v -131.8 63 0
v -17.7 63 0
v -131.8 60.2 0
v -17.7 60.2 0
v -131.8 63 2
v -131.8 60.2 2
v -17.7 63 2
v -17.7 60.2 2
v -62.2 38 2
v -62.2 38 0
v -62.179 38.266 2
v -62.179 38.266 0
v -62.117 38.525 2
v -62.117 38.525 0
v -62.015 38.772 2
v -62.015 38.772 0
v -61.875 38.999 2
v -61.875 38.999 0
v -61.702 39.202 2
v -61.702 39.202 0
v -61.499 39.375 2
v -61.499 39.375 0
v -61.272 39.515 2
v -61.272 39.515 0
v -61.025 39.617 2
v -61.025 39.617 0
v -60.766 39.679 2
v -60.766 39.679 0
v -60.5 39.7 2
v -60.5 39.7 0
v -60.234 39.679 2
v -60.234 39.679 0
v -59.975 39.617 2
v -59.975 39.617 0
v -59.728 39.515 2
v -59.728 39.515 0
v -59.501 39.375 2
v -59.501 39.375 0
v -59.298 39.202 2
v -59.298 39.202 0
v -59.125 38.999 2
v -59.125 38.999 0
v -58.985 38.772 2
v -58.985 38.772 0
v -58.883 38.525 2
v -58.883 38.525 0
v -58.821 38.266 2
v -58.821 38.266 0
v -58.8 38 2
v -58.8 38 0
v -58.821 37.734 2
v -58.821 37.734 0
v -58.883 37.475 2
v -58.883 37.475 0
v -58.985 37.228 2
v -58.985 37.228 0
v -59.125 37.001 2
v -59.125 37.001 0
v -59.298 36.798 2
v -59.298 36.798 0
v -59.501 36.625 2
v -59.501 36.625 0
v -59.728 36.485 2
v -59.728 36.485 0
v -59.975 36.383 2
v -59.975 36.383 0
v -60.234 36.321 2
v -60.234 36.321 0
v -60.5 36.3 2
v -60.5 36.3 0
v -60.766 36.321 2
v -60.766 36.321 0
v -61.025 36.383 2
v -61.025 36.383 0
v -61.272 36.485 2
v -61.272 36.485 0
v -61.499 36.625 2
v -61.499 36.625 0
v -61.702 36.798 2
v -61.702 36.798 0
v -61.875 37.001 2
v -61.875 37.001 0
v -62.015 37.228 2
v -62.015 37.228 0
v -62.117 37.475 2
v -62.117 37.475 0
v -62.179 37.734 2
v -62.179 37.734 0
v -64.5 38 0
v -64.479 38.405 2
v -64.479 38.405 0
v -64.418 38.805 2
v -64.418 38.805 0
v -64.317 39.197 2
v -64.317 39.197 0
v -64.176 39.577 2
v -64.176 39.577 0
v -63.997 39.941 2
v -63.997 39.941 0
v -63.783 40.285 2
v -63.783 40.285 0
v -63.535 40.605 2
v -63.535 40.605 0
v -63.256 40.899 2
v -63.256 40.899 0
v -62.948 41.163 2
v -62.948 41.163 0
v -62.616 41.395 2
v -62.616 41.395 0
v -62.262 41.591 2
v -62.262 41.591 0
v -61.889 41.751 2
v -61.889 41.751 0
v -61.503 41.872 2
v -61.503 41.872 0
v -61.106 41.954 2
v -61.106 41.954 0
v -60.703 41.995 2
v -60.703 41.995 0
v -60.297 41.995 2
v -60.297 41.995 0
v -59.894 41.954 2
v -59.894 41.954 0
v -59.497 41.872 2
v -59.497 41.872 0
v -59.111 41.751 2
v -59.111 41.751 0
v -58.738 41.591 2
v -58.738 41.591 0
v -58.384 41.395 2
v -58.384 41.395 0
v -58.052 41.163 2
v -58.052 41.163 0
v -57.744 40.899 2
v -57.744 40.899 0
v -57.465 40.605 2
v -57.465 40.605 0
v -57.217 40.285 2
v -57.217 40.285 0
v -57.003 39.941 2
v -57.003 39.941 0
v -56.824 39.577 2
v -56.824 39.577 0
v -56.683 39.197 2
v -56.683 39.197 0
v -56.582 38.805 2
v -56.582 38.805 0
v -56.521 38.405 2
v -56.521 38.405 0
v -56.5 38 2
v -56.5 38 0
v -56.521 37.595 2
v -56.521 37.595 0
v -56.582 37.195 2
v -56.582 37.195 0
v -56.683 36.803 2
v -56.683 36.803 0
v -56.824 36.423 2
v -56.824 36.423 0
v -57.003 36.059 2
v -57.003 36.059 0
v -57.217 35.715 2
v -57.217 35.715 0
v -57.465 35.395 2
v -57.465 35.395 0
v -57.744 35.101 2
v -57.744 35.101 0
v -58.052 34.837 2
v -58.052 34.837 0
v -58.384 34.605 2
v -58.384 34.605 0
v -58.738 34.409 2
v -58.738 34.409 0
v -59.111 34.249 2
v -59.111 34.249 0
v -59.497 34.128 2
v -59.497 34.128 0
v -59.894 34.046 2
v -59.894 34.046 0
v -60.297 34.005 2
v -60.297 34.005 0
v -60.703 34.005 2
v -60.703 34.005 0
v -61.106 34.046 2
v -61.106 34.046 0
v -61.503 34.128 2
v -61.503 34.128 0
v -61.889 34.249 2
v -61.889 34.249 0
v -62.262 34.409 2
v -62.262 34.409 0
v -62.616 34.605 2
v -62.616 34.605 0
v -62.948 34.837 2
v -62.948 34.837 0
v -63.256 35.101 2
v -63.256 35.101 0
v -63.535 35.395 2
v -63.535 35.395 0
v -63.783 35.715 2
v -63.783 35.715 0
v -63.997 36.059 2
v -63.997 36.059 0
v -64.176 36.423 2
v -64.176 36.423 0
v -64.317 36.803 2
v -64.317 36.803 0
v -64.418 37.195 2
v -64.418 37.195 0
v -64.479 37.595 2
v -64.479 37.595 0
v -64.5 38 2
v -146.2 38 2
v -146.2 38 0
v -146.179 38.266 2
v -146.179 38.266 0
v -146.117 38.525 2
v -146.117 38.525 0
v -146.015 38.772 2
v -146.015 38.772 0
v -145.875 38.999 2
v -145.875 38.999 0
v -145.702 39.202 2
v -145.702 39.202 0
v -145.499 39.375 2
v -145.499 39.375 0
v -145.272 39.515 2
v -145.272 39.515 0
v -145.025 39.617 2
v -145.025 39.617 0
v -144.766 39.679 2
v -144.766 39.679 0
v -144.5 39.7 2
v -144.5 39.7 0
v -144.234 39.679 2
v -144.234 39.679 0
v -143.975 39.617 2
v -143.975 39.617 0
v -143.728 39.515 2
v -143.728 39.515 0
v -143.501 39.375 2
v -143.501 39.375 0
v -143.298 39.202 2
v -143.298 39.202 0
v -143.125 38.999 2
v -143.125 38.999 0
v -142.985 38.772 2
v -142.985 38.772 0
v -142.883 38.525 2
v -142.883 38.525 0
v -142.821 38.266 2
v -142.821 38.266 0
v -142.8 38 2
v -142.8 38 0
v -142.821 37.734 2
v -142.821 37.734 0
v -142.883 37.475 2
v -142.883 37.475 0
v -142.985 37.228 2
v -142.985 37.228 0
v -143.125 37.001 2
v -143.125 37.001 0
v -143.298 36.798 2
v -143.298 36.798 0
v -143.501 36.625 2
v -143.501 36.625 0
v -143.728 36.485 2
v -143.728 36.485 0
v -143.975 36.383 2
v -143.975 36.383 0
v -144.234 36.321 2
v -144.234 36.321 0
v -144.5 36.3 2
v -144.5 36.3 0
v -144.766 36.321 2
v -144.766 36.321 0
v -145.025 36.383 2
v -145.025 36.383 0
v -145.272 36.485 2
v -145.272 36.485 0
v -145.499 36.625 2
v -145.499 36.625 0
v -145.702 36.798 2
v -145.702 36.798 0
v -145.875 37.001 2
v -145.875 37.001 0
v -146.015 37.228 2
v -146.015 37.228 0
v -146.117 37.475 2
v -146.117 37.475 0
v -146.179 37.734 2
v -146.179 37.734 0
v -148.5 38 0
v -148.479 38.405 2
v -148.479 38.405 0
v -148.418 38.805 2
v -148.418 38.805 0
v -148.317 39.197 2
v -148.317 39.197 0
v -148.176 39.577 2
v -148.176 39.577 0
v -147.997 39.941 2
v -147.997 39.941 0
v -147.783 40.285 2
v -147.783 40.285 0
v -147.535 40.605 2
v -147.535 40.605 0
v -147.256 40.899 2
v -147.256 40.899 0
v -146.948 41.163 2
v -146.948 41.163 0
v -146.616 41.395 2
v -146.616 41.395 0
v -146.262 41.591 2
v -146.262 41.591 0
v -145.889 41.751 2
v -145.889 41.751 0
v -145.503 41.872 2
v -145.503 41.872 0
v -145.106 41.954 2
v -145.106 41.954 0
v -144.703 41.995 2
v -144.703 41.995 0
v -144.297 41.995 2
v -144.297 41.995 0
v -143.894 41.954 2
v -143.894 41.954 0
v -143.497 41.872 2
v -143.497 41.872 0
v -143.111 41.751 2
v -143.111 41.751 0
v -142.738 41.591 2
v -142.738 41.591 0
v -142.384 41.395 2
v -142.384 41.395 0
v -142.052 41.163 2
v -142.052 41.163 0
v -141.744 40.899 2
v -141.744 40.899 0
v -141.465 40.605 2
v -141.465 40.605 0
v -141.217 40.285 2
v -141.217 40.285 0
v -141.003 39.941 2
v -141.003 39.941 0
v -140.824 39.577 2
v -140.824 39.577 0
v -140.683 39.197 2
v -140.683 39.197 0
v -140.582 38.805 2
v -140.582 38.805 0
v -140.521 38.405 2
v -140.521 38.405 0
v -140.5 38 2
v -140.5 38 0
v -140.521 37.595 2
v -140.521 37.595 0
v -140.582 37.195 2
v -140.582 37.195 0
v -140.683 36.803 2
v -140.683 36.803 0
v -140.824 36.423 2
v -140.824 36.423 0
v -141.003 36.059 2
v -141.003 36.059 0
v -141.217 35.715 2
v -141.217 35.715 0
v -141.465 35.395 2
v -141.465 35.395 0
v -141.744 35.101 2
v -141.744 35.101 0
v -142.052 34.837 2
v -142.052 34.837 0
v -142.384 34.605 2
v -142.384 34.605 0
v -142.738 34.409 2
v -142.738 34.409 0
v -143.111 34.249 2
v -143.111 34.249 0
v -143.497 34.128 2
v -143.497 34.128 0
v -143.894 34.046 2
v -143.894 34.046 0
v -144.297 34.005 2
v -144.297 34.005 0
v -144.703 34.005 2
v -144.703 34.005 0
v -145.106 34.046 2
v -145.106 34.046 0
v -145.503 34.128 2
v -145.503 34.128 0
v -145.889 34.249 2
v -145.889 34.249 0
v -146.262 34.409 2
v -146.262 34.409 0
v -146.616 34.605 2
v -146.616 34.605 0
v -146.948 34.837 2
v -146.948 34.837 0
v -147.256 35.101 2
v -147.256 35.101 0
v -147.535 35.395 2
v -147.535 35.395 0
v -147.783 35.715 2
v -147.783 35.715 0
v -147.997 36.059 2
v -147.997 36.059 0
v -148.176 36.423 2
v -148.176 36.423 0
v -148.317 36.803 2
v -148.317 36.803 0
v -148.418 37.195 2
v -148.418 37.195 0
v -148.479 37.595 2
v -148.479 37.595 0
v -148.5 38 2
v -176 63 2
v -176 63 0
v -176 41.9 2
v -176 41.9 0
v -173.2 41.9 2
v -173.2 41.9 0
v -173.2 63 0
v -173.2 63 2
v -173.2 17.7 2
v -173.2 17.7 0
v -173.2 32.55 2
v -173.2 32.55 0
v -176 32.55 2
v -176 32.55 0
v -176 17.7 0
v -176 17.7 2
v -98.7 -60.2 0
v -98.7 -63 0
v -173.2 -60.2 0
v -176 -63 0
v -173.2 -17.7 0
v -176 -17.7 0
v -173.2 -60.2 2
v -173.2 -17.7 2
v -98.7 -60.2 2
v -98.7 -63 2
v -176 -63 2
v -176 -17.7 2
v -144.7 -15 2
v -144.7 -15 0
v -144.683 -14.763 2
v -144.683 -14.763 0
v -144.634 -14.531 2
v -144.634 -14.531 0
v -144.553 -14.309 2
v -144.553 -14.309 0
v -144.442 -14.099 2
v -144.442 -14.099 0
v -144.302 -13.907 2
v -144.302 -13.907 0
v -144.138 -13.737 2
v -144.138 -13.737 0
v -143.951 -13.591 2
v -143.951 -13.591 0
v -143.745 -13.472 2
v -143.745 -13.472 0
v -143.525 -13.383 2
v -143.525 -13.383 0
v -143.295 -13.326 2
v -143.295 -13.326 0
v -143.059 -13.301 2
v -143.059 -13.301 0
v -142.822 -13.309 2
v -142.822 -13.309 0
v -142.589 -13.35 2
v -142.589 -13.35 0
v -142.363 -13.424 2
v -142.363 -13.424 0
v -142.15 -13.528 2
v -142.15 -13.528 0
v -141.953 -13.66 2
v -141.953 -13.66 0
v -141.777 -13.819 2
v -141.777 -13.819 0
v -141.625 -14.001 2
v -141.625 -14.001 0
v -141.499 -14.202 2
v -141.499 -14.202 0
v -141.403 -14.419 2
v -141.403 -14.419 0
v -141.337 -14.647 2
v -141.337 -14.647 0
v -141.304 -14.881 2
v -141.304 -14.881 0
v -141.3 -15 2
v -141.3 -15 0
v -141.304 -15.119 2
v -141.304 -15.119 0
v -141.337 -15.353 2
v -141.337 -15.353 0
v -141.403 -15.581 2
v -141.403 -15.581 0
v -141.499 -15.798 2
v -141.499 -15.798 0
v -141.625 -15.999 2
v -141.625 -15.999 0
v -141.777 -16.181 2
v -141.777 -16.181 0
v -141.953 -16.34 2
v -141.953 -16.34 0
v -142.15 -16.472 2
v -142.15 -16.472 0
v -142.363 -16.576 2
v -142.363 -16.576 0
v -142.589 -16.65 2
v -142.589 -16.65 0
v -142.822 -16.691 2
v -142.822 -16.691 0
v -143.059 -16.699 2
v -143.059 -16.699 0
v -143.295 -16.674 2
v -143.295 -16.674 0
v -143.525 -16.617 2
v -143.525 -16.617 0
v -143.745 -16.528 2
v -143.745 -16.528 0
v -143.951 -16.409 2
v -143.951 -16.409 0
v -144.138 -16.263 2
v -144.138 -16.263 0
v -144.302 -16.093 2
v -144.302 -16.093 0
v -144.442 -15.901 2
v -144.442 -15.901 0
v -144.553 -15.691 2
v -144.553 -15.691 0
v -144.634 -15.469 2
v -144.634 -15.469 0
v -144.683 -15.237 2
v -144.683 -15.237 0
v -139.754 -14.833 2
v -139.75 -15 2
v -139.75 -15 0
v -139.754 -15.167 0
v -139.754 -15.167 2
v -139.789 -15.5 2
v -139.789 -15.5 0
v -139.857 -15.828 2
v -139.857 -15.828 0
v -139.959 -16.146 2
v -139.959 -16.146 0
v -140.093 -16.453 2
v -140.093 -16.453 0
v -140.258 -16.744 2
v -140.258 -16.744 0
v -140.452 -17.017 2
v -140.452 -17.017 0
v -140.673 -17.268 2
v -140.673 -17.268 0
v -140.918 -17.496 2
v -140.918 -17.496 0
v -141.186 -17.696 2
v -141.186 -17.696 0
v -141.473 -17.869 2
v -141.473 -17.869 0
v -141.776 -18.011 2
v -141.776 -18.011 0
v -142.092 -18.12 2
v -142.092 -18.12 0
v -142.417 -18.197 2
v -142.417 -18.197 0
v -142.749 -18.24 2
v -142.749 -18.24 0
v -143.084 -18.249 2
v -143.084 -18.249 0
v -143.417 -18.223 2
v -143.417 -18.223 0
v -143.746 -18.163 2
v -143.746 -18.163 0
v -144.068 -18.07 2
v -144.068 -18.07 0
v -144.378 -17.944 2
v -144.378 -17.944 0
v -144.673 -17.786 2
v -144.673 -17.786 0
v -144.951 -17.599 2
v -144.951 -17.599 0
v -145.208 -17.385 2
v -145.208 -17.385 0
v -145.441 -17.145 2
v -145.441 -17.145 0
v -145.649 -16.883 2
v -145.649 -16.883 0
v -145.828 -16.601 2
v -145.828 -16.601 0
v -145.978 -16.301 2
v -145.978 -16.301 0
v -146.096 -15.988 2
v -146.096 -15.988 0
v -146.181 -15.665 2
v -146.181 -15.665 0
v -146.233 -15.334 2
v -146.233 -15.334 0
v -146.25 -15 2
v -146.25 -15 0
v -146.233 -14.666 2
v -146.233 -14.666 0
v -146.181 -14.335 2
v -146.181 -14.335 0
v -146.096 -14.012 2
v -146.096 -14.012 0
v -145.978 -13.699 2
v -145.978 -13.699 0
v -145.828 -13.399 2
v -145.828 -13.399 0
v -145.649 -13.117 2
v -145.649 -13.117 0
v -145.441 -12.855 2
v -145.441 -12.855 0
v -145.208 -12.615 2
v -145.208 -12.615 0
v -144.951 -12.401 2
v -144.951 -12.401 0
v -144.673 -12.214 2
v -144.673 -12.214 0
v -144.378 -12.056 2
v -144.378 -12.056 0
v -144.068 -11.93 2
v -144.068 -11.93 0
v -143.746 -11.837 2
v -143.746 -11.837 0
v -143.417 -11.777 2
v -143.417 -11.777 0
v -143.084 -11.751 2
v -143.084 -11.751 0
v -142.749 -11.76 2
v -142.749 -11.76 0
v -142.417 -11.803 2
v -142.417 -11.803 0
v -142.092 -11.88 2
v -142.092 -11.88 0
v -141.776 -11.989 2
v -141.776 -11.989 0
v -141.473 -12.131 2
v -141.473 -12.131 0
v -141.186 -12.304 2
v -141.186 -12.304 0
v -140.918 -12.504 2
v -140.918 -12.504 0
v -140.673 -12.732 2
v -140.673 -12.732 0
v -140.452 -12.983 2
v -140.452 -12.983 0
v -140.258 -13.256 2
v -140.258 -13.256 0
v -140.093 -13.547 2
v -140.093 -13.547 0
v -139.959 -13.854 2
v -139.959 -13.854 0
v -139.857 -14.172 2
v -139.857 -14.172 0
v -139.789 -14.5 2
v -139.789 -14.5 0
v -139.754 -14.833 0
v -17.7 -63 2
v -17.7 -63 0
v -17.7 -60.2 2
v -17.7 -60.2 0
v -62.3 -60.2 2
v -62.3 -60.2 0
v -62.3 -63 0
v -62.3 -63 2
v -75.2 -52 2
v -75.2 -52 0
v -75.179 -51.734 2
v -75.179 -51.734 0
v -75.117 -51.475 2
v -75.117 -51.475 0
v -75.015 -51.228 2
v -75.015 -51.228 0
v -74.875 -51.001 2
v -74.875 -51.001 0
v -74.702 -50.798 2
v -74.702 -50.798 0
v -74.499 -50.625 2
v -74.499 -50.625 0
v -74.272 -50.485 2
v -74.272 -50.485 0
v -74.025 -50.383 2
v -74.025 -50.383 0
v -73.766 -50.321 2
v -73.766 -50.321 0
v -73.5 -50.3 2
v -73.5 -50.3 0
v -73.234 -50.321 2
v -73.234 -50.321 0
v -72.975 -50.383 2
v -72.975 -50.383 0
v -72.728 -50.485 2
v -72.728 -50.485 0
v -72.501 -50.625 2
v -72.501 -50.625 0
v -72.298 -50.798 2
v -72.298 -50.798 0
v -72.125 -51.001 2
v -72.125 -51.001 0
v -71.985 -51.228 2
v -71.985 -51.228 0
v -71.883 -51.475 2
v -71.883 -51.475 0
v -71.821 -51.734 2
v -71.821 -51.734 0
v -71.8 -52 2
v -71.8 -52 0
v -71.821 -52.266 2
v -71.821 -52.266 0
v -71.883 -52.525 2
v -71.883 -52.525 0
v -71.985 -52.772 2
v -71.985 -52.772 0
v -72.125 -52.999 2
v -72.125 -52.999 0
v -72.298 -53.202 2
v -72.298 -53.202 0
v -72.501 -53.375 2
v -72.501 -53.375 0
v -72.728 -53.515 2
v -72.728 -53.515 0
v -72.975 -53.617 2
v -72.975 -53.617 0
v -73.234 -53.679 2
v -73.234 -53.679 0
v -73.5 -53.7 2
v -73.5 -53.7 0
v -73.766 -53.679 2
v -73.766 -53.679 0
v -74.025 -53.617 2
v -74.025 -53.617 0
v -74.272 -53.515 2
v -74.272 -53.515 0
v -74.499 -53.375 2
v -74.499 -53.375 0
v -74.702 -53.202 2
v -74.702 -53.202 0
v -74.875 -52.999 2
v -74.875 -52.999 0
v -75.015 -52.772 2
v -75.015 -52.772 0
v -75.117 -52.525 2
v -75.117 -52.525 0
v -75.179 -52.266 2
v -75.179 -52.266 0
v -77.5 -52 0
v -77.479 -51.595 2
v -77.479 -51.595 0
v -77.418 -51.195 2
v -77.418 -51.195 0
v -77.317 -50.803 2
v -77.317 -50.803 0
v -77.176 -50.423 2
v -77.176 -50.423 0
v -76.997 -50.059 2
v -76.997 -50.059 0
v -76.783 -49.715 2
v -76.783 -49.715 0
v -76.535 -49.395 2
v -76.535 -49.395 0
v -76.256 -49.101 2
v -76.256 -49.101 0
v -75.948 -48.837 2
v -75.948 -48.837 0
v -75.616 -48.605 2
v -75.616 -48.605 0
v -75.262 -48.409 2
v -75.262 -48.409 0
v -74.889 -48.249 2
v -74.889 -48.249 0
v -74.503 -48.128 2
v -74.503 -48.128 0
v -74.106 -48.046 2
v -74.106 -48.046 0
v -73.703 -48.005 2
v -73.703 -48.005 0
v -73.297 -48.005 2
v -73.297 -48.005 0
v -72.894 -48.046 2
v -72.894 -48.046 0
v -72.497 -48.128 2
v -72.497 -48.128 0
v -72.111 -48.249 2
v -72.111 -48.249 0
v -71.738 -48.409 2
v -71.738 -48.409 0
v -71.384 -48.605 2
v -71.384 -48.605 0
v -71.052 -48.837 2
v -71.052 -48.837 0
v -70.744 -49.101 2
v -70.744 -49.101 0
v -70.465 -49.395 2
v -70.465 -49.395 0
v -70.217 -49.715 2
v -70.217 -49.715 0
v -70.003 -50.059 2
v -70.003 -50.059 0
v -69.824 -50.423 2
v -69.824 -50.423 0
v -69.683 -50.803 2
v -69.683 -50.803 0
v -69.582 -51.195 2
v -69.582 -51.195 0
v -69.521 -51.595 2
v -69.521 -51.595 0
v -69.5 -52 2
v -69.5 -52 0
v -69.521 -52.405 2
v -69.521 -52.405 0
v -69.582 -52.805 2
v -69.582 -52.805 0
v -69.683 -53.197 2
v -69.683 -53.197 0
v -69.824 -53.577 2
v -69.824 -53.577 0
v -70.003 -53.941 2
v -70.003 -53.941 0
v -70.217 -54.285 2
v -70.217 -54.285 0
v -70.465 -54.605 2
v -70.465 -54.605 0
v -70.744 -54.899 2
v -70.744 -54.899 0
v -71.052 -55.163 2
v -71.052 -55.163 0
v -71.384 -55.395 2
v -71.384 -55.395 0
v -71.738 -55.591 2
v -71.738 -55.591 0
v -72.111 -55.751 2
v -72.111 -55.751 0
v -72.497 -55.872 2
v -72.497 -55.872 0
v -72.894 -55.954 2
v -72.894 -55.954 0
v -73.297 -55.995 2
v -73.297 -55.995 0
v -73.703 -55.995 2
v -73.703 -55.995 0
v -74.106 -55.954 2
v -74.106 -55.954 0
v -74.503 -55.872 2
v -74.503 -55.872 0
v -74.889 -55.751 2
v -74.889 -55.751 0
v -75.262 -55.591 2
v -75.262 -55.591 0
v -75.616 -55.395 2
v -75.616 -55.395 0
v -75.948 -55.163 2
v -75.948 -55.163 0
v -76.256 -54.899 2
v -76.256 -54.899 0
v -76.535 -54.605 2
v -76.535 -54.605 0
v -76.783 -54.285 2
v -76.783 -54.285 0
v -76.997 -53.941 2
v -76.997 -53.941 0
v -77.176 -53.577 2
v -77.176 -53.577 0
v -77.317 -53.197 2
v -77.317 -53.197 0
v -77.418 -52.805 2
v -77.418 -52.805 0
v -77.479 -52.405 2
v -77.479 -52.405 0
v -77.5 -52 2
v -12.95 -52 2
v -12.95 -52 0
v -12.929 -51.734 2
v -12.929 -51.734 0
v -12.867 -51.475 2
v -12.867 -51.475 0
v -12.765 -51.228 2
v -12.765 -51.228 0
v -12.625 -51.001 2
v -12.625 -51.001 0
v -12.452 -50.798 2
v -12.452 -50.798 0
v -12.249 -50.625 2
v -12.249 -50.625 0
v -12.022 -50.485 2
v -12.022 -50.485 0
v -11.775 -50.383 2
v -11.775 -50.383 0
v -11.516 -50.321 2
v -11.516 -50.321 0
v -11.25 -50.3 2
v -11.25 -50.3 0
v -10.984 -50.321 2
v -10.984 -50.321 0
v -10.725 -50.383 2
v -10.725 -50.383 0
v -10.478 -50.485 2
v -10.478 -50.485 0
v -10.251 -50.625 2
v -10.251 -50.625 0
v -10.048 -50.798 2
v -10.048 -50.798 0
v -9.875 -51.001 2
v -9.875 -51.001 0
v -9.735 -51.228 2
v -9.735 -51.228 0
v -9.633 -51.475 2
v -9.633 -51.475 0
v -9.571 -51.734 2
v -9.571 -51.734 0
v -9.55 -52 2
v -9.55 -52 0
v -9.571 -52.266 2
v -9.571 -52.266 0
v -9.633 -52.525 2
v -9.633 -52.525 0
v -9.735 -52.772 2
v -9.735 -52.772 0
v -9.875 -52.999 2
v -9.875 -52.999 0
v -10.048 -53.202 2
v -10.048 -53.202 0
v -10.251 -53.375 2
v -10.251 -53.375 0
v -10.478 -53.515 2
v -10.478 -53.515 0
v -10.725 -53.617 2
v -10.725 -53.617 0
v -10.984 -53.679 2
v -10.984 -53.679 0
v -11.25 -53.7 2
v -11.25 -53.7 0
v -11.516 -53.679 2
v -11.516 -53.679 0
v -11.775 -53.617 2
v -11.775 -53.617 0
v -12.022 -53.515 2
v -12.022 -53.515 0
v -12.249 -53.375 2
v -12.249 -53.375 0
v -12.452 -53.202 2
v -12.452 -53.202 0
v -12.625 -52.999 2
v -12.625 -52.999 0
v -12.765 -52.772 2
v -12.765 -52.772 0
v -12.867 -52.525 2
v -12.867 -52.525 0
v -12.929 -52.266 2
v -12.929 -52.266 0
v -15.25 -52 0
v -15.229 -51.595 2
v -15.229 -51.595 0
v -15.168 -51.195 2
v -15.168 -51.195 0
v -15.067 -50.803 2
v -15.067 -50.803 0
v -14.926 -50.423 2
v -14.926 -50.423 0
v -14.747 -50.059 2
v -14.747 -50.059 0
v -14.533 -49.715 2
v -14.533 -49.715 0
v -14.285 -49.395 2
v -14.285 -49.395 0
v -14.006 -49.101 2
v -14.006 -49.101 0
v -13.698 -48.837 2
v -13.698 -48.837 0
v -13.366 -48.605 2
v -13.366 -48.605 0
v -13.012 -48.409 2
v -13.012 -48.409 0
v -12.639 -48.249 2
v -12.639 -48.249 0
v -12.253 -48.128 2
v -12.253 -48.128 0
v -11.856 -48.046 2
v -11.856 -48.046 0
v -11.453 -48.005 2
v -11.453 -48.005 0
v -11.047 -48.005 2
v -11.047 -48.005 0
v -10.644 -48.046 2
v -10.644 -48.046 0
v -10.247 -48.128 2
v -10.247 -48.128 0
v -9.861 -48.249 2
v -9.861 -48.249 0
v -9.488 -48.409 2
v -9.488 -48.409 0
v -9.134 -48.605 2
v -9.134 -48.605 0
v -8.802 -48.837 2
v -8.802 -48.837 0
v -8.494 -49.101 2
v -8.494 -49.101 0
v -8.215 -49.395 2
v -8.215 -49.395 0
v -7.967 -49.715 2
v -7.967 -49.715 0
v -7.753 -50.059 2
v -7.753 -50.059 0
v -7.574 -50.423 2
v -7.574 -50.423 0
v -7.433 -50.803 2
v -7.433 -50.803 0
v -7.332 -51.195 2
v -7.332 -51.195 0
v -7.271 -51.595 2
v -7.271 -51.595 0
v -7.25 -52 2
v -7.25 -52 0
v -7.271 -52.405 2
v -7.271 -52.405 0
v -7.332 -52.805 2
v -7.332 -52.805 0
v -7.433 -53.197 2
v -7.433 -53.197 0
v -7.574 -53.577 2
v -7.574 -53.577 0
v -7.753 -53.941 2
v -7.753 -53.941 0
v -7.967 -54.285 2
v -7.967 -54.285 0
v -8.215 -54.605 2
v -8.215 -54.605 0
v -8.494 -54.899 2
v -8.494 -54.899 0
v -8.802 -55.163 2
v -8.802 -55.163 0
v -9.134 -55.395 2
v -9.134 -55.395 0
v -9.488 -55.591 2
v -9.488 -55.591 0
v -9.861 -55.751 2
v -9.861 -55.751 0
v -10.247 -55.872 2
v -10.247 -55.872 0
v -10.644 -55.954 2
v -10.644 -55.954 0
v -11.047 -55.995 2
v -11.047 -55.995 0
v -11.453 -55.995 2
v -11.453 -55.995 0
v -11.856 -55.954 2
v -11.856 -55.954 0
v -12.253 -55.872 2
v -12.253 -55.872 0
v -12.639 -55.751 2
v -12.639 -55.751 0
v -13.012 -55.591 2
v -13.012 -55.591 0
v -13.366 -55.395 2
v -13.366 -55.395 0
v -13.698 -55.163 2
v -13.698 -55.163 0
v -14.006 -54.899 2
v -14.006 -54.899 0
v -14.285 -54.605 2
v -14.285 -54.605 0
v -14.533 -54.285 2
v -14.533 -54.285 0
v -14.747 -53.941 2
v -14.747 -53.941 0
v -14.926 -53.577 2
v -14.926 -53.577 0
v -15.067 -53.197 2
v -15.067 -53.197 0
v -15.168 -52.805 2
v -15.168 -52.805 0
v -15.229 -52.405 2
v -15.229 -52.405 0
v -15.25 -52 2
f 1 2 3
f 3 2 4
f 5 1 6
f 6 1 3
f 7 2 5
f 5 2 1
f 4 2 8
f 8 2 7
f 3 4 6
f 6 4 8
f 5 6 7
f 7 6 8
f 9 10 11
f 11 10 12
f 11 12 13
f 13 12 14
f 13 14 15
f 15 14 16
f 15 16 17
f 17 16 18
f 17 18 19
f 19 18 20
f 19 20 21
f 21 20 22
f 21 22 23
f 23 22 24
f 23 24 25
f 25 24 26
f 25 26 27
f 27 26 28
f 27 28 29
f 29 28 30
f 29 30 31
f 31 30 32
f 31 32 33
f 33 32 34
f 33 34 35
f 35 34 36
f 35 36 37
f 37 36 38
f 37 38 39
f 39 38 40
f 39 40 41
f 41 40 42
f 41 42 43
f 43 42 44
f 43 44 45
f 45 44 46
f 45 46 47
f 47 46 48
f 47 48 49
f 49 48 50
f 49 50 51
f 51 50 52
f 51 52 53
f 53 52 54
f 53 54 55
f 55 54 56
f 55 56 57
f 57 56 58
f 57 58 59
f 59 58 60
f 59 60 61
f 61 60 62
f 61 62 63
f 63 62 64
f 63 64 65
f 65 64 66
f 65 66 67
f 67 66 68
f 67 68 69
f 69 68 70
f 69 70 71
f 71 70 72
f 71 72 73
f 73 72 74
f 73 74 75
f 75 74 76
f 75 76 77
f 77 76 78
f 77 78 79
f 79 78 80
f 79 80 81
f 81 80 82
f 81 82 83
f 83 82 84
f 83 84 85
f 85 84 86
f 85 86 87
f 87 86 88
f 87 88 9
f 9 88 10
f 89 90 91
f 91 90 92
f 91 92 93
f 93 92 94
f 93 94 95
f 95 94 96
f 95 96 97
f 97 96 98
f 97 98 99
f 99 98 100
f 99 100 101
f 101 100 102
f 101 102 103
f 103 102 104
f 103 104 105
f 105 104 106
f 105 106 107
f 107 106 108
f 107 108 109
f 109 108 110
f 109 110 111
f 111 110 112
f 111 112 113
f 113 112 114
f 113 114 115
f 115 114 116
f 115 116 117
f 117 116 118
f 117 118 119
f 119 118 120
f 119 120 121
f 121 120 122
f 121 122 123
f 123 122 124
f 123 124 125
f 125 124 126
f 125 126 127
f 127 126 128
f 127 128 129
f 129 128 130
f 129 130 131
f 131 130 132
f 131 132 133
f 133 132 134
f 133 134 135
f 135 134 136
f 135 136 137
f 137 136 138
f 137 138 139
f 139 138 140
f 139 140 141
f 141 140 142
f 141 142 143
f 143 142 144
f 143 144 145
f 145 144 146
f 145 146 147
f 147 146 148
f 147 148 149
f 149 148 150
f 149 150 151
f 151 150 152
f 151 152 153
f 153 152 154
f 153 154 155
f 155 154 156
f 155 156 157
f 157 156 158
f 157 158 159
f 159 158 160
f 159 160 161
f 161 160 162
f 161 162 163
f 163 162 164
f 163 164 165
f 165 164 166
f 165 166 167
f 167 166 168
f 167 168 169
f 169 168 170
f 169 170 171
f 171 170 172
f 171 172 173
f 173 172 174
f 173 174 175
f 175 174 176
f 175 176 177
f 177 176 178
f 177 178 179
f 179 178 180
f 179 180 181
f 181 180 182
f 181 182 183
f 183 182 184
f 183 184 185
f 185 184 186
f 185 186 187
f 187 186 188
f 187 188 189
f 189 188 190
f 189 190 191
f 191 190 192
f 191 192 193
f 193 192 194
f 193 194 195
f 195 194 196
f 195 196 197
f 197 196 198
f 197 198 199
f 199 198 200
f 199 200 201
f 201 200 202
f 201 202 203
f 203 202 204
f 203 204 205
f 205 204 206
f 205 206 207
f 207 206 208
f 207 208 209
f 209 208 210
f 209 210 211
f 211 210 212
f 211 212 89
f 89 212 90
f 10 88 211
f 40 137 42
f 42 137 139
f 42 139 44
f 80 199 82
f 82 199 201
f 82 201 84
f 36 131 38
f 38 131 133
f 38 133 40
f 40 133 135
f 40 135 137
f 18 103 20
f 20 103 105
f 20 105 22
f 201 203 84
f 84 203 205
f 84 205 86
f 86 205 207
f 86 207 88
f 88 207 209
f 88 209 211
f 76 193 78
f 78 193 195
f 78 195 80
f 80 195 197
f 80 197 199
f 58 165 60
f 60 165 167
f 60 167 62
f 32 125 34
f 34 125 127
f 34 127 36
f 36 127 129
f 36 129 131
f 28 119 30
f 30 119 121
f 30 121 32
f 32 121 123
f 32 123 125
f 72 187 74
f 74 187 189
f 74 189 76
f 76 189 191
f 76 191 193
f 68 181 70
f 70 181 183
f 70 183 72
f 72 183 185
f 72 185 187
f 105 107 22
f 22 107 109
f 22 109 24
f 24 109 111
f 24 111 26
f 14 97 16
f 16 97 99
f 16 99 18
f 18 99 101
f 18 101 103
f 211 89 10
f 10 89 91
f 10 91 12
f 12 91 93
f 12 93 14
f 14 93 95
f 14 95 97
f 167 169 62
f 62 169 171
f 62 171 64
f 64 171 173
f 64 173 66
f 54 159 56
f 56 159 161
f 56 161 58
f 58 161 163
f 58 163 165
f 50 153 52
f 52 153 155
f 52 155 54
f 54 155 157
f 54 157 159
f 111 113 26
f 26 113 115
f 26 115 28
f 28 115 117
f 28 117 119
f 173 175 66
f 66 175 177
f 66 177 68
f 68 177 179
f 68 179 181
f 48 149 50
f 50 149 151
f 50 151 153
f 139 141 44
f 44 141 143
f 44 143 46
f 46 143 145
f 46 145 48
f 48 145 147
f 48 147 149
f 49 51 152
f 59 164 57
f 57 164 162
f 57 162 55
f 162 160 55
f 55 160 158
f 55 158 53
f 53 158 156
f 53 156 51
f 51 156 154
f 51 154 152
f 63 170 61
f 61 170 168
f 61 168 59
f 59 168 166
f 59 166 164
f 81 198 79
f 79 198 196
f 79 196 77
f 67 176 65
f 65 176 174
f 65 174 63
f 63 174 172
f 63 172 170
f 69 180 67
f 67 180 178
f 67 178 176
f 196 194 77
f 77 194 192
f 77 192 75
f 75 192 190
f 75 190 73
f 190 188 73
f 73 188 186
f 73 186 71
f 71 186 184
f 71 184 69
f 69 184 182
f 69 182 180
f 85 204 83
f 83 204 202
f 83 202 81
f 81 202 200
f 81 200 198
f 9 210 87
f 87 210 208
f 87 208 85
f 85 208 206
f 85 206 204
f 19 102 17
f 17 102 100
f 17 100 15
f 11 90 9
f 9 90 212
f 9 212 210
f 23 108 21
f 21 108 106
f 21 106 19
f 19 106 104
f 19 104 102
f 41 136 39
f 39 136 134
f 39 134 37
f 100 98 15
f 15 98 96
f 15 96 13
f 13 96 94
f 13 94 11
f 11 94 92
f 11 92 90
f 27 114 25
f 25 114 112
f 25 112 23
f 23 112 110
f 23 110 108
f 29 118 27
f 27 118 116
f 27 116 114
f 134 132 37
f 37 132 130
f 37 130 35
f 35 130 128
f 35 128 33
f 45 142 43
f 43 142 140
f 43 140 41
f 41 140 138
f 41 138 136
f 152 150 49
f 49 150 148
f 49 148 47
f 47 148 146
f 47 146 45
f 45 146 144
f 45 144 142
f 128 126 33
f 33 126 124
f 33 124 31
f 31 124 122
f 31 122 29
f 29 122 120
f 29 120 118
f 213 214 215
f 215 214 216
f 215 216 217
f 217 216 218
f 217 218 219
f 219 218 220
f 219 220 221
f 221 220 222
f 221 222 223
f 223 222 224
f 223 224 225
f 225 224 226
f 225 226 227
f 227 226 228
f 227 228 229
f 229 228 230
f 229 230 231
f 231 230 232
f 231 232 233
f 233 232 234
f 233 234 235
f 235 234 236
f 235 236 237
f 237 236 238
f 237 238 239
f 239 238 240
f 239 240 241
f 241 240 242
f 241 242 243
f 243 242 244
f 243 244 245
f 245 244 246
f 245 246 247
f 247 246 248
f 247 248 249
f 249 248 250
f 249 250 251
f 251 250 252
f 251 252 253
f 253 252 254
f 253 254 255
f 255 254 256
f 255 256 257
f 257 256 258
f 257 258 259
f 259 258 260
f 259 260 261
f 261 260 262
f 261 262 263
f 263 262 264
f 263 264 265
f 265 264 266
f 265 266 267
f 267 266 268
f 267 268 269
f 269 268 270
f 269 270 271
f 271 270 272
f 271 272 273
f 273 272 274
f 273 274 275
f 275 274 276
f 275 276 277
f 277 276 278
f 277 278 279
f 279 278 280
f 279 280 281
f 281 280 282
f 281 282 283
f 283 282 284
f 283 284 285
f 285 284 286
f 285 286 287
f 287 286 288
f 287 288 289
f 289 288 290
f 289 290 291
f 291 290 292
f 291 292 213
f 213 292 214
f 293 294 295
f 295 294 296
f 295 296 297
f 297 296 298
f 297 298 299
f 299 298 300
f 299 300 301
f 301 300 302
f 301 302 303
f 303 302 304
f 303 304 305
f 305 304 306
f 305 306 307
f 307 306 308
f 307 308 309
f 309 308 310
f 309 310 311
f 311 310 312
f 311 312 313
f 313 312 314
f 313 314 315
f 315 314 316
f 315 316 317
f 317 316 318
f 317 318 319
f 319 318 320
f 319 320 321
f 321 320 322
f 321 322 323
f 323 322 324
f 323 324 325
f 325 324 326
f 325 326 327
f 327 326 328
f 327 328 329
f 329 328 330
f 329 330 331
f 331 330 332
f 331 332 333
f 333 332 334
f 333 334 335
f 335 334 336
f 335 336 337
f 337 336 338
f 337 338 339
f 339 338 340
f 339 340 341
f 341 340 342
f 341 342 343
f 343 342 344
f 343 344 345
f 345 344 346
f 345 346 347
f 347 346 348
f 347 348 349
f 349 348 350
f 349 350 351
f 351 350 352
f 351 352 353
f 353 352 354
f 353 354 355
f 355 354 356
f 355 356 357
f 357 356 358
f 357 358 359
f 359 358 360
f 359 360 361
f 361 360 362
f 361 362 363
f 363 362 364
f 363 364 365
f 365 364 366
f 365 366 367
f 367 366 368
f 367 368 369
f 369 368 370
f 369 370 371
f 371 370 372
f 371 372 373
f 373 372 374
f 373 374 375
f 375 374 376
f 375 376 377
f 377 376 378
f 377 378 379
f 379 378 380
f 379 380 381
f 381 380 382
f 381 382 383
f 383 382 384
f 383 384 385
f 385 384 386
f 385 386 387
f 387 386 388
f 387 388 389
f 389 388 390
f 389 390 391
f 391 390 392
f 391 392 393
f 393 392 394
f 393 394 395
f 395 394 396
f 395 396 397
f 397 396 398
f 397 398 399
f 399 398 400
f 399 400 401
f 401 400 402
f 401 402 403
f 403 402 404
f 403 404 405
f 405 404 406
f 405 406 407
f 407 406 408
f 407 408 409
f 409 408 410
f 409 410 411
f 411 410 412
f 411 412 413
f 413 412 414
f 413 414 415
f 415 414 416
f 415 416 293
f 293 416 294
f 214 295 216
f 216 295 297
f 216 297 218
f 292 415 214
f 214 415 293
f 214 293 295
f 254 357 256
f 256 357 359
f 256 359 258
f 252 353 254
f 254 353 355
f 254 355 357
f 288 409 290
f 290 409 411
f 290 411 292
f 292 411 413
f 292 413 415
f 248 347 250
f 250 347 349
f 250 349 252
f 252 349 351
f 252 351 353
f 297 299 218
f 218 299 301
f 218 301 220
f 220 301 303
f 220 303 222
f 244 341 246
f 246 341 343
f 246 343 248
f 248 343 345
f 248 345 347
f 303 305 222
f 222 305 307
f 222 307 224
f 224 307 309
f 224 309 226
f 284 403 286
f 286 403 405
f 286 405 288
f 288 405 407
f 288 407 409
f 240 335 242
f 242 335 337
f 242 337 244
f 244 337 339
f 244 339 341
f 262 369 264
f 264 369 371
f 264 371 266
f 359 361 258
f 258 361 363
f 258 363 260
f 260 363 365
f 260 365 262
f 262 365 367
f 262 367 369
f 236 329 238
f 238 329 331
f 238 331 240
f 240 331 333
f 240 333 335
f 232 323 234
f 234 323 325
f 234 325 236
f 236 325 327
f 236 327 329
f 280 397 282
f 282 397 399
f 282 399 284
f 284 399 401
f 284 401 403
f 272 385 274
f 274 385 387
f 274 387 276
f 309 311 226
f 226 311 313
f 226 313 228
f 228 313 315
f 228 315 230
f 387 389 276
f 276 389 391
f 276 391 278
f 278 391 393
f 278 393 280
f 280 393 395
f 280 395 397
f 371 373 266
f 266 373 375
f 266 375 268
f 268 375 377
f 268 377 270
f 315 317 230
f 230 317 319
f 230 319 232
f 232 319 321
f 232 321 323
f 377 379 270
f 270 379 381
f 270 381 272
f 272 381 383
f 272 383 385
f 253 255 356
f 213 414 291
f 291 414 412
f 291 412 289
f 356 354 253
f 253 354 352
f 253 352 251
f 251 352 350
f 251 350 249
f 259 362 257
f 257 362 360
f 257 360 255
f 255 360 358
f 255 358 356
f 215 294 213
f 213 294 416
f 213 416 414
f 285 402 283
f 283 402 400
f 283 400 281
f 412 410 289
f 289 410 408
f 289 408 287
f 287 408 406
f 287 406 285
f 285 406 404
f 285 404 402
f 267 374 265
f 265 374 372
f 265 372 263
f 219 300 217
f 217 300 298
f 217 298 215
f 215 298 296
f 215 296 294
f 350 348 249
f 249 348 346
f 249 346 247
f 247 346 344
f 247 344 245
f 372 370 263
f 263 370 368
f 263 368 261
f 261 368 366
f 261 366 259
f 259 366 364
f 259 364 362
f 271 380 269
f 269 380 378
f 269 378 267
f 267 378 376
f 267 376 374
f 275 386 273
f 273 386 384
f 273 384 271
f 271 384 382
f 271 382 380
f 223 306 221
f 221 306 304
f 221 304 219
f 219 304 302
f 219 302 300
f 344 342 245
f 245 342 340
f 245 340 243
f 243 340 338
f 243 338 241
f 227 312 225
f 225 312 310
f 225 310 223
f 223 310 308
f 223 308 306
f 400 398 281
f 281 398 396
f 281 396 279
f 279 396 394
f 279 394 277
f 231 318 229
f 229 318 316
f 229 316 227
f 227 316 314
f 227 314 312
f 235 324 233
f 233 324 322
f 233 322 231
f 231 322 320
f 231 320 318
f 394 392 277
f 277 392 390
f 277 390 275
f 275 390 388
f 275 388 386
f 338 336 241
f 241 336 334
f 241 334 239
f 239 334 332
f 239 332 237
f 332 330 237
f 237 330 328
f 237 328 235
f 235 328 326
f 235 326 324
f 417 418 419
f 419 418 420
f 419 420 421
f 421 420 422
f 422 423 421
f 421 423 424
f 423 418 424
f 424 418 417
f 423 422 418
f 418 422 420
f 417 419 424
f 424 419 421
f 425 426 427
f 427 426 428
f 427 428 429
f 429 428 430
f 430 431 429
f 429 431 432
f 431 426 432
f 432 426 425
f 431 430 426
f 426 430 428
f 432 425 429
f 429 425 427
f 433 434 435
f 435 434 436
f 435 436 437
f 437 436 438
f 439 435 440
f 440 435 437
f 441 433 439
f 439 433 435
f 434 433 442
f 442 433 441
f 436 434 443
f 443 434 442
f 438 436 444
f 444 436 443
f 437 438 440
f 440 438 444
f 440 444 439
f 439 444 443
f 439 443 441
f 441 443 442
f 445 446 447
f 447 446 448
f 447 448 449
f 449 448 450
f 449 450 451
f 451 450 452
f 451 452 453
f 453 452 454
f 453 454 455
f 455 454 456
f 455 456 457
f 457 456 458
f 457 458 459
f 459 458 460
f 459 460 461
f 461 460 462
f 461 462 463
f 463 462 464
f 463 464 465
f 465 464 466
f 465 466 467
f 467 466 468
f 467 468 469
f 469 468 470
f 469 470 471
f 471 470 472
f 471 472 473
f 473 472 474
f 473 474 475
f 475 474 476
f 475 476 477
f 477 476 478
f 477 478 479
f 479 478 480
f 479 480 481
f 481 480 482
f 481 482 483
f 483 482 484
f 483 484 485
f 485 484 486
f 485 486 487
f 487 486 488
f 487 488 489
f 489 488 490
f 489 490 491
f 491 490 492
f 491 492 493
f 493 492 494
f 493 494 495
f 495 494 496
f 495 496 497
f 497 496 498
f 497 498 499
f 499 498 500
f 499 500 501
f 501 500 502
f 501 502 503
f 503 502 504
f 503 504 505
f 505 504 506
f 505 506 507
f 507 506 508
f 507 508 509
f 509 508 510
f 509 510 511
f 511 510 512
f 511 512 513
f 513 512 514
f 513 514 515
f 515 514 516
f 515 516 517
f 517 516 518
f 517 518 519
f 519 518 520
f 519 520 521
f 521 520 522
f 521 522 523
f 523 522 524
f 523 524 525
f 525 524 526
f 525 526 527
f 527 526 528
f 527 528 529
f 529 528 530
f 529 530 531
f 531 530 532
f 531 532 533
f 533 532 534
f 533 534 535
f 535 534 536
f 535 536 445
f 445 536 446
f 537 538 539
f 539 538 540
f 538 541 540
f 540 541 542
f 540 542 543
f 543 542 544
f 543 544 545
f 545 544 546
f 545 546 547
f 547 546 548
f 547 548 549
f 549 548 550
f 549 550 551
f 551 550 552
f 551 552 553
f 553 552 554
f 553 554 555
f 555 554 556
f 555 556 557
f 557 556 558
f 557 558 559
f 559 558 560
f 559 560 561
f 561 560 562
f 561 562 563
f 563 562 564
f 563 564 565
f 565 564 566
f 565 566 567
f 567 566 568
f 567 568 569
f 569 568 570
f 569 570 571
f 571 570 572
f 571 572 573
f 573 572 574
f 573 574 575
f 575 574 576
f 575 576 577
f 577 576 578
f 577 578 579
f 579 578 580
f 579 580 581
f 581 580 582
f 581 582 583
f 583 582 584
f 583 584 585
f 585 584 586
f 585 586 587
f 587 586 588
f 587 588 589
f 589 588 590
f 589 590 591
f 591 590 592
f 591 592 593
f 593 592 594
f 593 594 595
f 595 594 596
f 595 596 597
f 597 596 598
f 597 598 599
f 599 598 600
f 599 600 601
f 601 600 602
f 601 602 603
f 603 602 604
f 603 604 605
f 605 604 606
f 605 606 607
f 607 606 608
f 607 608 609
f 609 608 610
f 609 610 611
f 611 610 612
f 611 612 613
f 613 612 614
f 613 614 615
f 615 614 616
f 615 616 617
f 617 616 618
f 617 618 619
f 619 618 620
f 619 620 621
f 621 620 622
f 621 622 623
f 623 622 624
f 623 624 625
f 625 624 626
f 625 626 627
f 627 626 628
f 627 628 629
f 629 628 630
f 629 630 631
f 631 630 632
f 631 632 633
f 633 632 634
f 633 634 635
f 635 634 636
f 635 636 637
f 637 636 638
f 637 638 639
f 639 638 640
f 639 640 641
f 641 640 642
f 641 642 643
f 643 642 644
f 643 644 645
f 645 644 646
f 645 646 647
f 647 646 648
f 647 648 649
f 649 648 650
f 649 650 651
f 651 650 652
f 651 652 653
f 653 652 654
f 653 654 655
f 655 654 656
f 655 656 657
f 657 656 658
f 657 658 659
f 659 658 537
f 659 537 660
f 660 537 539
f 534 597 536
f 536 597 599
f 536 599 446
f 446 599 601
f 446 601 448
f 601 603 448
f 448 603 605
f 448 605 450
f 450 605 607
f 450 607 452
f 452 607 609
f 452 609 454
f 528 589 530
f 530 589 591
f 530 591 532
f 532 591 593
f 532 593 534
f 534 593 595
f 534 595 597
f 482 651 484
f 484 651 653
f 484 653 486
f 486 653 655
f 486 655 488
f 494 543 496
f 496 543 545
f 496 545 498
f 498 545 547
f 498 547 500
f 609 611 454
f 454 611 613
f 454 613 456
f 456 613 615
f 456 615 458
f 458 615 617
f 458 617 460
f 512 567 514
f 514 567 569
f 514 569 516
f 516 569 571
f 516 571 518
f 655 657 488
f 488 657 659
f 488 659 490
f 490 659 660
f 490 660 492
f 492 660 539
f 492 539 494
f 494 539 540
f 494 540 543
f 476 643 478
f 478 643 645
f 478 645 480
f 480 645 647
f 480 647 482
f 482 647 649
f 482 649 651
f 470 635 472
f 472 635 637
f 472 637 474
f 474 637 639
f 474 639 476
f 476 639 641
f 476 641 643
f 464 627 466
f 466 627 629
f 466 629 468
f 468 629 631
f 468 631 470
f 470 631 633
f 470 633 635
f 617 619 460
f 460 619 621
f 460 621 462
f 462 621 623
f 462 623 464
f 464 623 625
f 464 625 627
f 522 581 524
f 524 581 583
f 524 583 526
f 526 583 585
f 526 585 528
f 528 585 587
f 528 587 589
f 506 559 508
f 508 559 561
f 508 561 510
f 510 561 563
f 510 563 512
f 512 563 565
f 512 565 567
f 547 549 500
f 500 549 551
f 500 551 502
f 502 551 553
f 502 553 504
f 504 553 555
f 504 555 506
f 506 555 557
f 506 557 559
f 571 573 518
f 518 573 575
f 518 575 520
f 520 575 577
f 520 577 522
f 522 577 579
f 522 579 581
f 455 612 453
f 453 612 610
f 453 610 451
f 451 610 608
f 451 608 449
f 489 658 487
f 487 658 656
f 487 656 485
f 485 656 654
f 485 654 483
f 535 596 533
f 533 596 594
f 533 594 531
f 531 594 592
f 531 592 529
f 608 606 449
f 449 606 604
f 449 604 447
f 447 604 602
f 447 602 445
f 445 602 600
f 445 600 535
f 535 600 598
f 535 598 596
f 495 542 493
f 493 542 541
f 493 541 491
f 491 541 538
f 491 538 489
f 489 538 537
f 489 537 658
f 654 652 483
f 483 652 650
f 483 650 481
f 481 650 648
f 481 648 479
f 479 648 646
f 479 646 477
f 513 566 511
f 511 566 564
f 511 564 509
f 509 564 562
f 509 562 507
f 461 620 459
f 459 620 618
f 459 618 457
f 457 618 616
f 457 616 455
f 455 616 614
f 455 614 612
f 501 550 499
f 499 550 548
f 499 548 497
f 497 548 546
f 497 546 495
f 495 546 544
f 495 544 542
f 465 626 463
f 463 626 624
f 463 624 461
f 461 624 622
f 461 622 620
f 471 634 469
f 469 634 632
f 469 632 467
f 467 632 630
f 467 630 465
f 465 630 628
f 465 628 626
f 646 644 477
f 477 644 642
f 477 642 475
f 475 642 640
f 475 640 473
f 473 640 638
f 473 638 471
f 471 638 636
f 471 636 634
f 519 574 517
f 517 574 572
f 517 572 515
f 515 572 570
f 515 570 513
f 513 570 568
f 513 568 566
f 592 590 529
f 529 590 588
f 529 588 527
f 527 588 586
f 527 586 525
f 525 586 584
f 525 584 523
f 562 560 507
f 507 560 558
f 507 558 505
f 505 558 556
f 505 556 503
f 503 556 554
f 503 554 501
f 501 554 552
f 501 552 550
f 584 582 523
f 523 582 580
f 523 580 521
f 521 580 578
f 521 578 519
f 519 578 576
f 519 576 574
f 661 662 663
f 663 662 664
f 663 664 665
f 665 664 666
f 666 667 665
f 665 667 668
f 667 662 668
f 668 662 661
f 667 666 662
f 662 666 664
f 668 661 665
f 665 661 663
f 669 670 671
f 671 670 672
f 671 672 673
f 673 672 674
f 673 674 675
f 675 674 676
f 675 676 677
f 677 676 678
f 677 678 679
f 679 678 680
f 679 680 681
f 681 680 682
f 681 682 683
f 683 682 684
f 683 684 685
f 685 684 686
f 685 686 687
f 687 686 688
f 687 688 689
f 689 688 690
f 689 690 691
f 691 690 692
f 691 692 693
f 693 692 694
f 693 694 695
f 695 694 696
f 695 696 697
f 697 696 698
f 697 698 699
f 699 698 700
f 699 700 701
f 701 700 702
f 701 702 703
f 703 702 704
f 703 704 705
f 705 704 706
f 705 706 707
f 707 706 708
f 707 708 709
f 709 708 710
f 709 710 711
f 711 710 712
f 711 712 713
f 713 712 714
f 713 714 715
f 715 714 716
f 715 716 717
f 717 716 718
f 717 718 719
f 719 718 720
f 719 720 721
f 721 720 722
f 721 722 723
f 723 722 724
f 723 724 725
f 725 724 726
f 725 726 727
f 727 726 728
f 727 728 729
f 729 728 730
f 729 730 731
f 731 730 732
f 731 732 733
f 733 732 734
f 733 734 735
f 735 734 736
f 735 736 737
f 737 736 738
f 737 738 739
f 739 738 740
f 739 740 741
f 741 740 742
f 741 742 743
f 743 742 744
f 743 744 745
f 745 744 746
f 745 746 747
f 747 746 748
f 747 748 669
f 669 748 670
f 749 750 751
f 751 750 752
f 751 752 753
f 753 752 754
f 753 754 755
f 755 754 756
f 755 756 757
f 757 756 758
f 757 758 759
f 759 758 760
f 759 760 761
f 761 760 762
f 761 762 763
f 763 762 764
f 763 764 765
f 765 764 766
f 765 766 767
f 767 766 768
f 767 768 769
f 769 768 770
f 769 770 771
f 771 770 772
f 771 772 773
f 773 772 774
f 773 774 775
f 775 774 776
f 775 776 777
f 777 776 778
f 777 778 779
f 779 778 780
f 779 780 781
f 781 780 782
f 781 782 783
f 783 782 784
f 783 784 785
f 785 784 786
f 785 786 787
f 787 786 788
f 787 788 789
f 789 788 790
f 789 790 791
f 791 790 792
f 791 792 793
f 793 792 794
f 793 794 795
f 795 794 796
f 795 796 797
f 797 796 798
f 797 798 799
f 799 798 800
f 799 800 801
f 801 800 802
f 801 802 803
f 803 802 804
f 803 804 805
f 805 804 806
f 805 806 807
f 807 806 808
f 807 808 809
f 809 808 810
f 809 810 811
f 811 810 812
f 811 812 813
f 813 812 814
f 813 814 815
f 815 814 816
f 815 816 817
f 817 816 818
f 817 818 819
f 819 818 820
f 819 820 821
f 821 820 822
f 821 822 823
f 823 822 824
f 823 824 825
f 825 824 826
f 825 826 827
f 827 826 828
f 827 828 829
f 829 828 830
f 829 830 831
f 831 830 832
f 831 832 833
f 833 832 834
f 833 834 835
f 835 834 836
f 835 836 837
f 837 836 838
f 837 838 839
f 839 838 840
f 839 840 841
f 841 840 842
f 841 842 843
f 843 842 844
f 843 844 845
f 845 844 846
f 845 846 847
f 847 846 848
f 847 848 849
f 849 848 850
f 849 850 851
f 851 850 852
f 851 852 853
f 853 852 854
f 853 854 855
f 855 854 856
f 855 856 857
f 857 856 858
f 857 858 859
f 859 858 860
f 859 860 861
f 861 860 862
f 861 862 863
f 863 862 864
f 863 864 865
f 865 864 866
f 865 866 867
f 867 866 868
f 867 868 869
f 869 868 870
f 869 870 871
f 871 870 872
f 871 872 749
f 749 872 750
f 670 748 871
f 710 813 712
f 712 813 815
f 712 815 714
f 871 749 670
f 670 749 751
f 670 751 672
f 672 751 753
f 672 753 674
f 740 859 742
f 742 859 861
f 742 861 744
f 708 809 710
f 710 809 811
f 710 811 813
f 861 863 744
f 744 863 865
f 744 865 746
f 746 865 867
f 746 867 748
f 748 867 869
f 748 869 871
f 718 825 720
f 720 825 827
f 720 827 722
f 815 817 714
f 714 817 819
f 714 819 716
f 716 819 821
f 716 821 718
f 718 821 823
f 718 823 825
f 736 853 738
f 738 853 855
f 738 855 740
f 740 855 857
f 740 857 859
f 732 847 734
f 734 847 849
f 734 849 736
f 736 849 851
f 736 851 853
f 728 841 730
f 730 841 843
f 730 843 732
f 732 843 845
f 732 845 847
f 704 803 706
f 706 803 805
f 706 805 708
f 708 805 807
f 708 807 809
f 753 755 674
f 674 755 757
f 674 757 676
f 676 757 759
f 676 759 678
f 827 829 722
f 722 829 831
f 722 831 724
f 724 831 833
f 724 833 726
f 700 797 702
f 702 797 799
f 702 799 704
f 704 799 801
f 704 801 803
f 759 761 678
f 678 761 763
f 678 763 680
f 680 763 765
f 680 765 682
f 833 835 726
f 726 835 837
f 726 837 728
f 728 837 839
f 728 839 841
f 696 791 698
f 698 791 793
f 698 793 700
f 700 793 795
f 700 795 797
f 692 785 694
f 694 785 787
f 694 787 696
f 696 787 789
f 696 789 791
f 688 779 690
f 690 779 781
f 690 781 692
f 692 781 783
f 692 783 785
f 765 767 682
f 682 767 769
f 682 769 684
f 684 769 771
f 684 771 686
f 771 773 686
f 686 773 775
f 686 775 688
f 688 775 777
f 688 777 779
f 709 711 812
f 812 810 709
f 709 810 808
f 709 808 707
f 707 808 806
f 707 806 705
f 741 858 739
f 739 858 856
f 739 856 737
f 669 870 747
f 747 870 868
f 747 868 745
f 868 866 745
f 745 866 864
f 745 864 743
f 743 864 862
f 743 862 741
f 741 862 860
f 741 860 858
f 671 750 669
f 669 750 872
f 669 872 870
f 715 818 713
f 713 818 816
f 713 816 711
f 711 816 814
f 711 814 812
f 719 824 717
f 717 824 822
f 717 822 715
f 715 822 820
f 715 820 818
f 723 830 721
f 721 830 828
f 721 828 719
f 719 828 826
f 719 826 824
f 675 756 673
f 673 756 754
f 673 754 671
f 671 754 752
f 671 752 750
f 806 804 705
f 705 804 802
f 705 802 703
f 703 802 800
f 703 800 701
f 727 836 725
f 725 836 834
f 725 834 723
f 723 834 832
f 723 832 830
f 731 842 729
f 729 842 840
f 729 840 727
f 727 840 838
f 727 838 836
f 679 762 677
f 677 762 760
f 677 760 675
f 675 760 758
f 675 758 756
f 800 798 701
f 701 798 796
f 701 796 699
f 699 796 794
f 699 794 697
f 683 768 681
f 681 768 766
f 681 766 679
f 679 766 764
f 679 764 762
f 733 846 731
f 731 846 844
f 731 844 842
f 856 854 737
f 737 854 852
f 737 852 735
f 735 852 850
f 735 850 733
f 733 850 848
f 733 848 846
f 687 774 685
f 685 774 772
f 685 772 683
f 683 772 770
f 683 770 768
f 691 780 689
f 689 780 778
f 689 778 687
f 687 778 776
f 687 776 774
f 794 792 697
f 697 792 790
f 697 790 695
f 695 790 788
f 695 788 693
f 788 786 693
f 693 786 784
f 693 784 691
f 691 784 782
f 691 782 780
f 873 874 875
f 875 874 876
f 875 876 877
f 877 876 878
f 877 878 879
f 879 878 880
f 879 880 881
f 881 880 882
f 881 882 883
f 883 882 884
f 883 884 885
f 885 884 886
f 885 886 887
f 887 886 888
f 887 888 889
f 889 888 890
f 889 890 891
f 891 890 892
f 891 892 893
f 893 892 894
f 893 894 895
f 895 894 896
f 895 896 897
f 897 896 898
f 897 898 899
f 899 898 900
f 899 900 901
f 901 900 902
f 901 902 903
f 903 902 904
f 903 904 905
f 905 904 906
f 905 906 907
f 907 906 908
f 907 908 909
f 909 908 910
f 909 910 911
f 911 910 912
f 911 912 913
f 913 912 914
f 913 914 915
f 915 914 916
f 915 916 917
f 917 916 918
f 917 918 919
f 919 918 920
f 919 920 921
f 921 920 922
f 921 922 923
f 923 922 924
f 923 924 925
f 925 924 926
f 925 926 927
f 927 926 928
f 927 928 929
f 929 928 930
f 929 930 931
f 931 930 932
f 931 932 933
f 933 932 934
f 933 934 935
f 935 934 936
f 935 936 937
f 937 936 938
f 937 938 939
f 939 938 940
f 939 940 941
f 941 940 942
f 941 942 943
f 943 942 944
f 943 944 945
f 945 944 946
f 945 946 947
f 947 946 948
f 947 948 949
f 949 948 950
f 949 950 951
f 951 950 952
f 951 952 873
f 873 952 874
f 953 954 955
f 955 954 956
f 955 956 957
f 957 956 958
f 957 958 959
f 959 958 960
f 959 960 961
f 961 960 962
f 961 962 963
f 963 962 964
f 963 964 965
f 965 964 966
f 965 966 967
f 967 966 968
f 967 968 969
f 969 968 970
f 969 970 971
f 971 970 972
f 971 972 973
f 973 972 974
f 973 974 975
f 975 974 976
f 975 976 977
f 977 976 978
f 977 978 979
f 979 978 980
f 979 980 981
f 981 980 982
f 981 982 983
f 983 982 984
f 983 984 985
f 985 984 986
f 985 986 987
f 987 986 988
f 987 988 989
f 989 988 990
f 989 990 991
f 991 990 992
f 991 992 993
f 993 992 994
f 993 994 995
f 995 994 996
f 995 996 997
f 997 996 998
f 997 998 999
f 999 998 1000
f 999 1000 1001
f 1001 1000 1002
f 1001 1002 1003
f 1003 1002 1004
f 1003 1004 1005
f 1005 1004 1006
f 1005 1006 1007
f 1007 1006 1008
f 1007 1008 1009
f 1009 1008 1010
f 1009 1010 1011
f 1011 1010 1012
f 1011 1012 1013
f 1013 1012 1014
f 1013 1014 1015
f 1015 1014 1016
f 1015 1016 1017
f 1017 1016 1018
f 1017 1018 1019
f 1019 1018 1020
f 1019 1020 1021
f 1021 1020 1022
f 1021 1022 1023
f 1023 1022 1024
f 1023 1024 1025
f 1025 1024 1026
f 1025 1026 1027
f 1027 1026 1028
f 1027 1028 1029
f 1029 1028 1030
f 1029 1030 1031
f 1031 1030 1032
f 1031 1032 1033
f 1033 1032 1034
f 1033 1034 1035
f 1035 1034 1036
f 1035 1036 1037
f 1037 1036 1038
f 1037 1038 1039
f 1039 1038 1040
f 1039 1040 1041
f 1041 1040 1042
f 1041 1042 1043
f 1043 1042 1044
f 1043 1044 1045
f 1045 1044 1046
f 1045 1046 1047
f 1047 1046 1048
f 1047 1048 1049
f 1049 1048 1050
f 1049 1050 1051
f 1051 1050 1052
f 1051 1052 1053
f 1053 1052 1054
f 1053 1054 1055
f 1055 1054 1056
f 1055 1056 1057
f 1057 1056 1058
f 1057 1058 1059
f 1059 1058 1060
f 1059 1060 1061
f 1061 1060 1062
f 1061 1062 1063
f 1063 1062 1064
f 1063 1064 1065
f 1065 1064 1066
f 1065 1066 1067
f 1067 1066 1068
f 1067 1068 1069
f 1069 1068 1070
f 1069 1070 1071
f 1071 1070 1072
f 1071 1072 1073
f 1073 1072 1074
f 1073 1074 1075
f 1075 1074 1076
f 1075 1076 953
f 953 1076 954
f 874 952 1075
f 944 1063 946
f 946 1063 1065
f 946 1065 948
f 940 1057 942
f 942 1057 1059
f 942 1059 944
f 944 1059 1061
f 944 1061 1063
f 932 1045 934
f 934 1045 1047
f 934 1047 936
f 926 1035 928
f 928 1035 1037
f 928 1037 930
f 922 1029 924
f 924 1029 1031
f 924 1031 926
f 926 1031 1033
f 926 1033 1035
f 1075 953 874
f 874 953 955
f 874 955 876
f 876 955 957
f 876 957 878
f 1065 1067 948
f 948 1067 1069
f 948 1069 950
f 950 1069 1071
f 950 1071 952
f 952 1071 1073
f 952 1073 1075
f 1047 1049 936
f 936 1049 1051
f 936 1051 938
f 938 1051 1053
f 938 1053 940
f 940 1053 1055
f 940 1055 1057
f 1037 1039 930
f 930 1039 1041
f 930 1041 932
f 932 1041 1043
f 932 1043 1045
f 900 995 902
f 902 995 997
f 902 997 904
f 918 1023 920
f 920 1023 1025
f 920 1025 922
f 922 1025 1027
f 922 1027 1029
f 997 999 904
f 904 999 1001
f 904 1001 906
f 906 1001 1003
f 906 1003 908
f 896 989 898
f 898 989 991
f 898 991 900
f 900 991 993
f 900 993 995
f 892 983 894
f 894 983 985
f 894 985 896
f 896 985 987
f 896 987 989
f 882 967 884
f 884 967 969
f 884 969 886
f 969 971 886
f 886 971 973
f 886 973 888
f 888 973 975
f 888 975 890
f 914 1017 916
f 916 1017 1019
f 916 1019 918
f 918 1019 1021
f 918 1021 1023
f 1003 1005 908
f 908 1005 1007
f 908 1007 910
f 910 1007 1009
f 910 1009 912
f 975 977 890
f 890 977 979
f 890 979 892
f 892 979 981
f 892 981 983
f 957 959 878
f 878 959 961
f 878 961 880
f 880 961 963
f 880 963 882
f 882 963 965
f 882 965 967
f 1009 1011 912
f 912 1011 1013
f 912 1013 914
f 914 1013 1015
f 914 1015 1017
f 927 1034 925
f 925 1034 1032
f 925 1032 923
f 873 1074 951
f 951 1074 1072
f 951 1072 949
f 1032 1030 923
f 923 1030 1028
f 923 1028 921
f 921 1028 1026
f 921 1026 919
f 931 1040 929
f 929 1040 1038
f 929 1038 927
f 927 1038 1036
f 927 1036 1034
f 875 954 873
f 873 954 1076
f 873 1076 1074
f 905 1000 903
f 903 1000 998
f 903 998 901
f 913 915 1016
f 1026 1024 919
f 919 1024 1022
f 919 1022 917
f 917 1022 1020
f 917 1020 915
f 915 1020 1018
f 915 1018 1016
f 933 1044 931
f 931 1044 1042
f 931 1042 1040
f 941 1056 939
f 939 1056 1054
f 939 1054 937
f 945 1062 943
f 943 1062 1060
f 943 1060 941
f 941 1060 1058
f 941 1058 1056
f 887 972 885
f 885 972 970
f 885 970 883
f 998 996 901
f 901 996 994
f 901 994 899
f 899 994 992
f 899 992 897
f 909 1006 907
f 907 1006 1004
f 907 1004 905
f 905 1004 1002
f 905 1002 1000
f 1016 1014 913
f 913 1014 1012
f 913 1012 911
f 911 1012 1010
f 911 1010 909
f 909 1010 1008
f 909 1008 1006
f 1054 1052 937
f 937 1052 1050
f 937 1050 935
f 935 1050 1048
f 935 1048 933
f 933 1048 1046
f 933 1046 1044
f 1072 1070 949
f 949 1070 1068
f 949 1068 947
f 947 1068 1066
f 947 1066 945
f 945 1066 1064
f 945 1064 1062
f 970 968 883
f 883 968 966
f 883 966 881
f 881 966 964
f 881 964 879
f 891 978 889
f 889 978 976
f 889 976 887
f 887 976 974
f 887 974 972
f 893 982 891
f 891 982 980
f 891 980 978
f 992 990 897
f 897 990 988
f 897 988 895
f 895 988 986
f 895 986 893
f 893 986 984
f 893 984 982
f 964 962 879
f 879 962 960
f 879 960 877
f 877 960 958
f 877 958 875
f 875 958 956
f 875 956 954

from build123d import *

# Parameters (mm, degrees)
SKETCH1_W           = 114.1
SKETCH1_H           = 2.8
SKETCH1_R           = 4
SKETCH1_R_2         = 1.7
SKETCH1_W_2         = 2.8
SKETCH1_H_2         = 21.1
SKETCH1_H_3         = 14.85
SKETCH1_H_4         = 42.5
SKETCH1_R_3         = 3.25
SKETCH1_W_3         = 44.6
BOSS_EXTRUDE1_DEPTH = 2


with BuildPart() as part:
    # Sketch1 → Boss-Extrude1 (new body)
    # profile 1 of 11: a face of its own
    with BuildSketch(Plane.XY):
        with Locations((-74.75, 61.6)):
            Rectangle(SKETCH1_W, SKETCH1_H)
    # profile 2 of 11: a face of its own
    with BuildSketch(Plane.XY):
        with Locations((-60.5, 38)):
            Circle(SKETCH1_R)
        with Locations((-60.5, 38)):
            Circle(SKETCH1_R_2, mode=Mode.SUBTRACT)
    # profile 3 of 11: a face of its own
    with BuildSketch(Plane.XY):
        with Locations((-144.5, 38)):
            Circle(SKETCH1_R)
        with Locations((-144.5, 38)):
            Circle(SKETCH1_R_2, mode=Mode.SUBTRACT)
    # profile 4 of 11: a face of its own
    with BuildSketch(Plane.XY):
        with Locations((-174.6, 52.45)):
            Rectangle(SKETCH1_W_2, SKETCH1_H_2)
    # profile 5 of 11: a face of its own
    with BuildSketch(Plane.XY):
        with Locations((-174.6, 25.125)):
            Rectangle(SKETCH1_W_2, SKETCH1_H_3)
    # profile 6 of 11: a face of its own
    with BuildSketch(Plane.XY):
        with Locations((-174.6, -38.95)):
            Rectangle(SKETCH1_W_2, SKETCH1_H_4)
    # profile 7 of 11: a face of its own
    with BuildSketch(Plane.XY):
        Polygon((-98.7, -60.2), (-173.2, -60.2), (-176, -60.2), (-176, -63), (-98.7, -63), align=None)
    # profile 8 of 11: a face of its own
    with BuildSketch(Plane.XY):
        with Locations((-143, -15)):
            Circle(SKETCH1_R_3)
        with Locations((-143, -15)):
            Circle(SKETCH1_R_2, mode=Mode.SUBTRACT)
    # profile 9 of 11: a face of its own
    with BuildSketch(Plane.XY):
        with Locations((-40, -61.6)):
            Rectangle(SKETCH1_W_3, SKETCH1_H)
    # profile 10 of 11: a face of its own
    with BuildSketch(Plane.XY):
        with Locations((-73.5, -52)):
            Circle(SKETCH1_R)
        with Locations((-73.5, -52)):
            Circle(SKETCH1_R_2, mode=Mode.SUBTRACT)
    # profile 11 of 11: a face of its own
    with BuildSketch(Plane.XY):
        with Locations((-11.25, -52)):
            Circle(SKETCH1_R)
        with Locations((-11.25, -52)):
            Circle(SKETCH1_R_2, mode=Mode.SUBTRACT)
    extrude(amount=BOSS_EXTRUDE1_DEPTH)


solid = part.part
